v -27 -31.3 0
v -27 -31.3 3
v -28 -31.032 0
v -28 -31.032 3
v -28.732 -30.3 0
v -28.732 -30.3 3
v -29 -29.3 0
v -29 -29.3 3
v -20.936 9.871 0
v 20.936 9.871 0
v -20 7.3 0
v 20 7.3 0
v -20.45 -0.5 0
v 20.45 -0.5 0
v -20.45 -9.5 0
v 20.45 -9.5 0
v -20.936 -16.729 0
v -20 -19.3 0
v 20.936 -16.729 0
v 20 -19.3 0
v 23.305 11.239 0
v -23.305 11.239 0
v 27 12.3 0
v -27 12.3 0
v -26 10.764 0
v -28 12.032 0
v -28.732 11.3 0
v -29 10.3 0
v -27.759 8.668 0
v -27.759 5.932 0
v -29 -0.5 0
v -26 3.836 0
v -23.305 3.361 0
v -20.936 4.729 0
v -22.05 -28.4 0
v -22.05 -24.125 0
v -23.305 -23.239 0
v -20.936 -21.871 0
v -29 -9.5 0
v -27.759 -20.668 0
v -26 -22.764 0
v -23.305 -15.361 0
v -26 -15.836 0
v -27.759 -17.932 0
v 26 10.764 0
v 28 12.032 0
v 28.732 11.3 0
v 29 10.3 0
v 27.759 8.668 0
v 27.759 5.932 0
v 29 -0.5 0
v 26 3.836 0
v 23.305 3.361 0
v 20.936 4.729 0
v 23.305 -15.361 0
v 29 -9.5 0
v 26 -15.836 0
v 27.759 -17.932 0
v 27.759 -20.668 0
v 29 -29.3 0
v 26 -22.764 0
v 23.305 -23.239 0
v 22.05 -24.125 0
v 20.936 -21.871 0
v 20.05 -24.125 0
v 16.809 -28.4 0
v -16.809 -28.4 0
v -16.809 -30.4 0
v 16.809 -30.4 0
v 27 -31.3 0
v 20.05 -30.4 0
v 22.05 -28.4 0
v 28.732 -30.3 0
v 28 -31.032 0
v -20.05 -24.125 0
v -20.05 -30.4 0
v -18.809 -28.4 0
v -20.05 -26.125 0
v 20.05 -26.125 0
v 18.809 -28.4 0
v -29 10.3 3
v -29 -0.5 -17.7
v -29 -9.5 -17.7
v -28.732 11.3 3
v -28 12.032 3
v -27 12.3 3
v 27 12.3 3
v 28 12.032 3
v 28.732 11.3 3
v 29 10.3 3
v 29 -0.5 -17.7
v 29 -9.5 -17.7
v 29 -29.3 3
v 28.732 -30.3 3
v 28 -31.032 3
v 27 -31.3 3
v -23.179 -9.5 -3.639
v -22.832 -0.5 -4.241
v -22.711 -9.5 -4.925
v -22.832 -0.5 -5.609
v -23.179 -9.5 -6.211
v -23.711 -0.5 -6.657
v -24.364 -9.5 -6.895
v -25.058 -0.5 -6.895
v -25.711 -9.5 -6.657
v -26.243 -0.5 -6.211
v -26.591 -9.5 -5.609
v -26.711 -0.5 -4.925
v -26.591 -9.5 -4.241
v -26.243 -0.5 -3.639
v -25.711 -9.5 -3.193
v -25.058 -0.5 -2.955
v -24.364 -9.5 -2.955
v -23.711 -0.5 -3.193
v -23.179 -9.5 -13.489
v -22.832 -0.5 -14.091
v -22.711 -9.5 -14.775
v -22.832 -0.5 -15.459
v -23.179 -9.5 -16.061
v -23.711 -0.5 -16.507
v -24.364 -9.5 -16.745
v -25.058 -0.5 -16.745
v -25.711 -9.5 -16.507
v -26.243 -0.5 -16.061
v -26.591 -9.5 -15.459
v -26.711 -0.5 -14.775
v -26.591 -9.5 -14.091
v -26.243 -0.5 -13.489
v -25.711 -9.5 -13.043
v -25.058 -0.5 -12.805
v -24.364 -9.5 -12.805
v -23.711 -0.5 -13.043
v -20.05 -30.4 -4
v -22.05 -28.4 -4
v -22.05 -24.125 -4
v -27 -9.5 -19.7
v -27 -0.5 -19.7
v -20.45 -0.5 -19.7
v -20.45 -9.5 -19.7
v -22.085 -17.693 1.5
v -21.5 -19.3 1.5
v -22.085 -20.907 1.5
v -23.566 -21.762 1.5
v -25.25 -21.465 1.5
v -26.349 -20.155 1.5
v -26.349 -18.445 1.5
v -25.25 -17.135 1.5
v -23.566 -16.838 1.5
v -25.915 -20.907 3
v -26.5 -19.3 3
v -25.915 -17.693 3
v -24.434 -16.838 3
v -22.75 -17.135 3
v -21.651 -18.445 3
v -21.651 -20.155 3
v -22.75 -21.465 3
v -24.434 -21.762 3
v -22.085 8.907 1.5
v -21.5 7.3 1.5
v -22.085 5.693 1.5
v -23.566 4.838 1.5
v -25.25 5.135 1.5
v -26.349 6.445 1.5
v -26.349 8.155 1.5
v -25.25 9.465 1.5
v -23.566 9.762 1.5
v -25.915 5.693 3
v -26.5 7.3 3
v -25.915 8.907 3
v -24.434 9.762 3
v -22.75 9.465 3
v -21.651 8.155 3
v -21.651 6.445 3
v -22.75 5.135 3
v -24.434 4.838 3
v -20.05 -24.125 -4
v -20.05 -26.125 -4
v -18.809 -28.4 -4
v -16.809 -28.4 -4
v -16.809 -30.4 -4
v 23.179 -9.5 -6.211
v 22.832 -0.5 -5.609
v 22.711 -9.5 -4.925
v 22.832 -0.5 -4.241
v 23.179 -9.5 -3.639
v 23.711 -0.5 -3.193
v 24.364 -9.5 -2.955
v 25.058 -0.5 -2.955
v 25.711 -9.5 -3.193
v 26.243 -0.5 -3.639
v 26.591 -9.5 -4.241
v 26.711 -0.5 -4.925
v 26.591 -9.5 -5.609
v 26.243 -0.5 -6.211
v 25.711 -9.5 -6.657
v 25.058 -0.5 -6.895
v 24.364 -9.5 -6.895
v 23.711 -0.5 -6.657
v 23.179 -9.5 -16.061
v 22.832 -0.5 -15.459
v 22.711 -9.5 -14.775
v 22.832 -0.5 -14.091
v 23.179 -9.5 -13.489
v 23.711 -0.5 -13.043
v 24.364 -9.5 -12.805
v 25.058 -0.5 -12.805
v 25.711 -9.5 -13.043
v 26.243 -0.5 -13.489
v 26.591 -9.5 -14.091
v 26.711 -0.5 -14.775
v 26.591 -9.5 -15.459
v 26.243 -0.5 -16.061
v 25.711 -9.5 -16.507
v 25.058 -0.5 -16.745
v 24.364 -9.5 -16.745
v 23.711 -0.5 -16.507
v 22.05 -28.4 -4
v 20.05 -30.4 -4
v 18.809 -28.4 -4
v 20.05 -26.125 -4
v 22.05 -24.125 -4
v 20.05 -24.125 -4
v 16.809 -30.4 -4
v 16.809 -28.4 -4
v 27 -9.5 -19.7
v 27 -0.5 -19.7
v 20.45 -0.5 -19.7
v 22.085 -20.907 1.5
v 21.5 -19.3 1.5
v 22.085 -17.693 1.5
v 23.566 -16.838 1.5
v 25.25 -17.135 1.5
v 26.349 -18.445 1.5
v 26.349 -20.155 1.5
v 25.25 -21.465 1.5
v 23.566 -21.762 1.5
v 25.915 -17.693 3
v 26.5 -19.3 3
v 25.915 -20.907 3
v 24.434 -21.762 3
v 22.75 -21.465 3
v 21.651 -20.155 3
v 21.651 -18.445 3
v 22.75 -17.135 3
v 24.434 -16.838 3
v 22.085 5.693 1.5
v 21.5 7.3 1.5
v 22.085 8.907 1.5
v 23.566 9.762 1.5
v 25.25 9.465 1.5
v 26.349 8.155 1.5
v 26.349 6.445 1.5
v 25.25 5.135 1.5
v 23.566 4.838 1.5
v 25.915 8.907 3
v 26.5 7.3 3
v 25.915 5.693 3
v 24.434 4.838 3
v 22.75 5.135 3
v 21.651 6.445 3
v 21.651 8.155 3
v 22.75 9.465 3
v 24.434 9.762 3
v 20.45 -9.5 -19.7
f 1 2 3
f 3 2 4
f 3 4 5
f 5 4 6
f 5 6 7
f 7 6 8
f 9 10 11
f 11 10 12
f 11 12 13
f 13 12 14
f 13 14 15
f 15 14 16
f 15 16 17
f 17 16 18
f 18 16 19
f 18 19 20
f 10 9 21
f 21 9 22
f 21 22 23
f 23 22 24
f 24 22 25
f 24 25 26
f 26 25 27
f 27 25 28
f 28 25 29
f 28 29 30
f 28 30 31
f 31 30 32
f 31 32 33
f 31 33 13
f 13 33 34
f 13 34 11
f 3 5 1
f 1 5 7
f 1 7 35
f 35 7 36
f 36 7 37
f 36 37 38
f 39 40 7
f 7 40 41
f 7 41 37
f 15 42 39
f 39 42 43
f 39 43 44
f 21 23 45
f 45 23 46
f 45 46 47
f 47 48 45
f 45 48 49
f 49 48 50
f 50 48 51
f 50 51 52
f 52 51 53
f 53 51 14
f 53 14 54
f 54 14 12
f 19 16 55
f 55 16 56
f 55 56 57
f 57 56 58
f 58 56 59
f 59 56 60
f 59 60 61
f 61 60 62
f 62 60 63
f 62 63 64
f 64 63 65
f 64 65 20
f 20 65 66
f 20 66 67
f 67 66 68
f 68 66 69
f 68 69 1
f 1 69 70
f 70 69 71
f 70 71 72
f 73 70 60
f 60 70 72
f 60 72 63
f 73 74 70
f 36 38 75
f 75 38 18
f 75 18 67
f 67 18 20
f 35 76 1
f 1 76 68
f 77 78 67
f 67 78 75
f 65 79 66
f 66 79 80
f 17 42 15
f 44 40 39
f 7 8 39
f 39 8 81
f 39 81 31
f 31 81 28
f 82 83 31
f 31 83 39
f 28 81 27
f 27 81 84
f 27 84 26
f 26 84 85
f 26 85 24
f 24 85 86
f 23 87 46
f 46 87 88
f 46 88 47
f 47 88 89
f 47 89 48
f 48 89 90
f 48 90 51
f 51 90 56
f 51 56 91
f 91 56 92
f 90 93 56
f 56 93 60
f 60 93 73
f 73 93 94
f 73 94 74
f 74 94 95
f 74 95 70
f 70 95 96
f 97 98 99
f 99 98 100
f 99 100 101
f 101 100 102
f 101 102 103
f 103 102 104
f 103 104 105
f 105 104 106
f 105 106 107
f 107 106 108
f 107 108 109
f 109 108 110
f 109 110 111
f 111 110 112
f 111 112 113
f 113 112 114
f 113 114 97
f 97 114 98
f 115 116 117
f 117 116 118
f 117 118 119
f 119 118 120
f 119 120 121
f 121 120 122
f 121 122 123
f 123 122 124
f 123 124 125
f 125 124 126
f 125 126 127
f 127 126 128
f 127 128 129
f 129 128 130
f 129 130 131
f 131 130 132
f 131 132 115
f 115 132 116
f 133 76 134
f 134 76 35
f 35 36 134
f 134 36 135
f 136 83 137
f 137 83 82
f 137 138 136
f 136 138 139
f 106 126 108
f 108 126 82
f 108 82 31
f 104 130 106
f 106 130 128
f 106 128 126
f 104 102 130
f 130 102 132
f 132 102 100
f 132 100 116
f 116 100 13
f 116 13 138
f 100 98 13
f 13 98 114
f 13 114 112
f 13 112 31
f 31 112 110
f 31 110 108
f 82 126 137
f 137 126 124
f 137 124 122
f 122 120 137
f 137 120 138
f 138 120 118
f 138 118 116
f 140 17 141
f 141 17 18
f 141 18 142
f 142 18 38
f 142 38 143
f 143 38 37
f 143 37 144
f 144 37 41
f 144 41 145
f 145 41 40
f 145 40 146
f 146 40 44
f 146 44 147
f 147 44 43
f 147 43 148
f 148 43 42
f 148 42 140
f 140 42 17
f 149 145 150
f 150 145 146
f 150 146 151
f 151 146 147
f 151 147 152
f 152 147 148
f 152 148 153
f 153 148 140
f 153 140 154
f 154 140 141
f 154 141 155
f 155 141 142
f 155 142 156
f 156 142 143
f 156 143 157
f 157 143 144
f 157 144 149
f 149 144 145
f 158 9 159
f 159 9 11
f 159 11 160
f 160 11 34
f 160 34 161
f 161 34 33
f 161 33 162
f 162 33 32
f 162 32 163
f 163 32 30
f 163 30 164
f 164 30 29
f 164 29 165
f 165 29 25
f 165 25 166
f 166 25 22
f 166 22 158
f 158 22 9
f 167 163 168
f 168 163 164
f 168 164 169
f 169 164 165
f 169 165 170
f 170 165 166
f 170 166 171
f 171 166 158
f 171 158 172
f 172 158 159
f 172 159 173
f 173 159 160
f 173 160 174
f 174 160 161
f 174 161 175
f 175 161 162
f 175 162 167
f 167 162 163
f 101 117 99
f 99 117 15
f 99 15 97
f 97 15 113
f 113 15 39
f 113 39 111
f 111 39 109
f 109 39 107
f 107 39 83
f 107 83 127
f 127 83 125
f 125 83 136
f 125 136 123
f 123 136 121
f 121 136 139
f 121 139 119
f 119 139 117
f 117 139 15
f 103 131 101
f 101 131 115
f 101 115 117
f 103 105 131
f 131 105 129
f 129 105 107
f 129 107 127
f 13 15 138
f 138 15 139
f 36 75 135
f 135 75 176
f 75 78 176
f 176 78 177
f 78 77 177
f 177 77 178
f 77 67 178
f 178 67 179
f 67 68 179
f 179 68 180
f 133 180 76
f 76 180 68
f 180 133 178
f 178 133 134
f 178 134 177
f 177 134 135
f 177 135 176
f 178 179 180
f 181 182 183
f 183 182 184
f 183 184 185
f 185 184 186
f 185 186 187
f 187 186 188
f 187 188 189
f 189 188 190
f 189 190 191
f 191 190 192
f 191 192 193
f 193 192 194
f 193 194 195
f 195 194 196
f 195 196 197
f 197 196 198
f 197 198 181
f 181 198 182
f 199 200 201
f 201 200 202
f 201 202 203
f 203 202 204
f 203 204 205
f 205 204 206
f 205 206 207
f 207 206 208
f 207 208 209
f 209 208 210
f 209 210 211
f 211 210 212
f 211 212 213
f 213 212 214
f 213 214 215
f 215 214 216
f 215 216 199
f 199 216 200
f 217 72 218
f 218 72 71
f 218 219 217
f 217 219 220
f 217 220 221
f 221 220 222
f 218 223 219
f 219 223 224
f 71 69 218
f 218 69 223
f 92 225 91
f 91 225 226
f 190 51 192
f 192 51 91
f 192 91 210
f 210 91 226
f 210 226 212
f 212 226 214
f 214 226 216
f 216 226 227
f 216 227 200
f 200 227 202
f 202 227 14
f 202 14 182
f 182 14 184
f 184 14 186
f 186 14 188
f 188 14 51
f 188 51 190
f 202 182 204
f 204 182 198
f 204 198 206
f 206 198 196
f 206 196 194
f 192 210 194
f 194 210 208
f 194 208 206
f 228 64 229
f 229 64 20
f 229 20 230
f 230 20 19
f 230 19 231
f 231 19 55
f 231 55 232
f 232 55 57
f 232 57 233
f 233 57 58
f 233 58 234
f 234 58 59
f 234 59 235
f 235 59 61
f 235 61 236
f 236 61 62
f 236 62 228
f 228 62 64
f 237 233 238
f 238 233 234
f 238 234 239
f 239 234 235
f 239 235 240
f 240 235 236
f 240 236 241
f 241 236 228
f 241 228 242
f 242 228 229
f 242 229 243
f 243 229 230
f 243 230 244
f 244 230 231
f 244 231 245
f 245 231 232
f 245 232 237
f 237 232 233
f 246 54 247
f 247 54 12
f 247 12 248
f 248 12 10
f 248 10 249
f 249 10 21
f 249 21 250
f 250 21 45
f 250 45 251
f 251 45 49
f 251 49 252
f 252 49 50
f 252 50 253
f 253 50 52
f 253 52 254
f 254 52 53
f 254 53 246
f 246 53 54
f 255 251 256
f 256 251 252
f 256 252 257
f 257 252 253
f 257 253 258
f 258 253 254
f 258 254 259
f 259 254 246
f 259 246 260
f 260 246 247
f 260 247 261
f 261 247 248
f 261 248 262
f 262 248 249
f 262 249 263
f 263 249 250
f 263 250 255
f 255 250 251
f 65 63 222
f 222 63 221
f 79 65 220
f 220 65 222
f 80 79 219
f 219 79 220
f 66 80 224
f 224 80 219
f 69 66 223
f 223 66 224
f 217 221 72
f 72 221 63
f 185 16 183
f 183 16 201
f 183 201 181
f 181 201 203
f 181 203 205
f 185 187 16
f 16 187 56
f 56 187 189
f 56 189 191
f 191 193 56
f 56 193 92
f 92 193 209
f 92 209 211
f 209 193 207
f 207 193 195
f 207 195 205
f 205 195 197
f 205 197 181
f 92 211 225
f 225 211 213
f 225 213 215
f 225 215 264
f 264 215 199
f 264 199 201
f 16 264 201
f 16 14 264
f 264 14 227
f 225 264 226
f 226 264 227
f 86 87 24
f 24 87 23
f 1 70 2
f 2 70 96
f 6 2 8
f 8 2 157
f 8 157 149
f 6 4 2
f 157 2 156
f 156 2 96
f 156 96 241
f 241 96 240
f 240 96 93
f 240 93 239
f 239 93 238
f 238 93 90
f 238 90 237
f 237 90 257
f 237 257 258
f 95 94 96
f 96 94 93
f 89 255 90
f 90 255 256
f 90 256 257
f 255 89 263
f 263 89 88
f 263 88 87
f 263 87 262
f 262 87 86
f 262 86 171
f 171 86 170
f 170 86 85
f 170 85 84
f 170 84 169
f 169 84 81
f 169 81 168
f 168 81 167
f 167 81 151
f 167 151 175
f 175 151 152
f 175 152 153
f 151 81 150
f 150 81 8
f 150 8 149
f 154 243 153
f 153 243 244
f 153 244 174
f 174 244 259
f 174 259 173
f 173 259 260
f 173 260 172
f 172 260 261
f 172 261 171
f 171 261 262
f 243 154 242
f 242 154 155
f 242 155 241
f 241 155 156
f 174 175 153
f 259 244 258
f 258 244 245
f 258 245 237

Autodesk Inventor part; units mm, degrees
ref_plane "YZ Plane" through (0, 0, 0) normal (1, 0, 0) x (0, 1, 0)
ref_plane "XZ Plane" through (0, 0, 0) normal (0, 1, 0) x (-1, 0, 0)
ref_plane "XY Plane" through (0, 0, 0) normal (0, 0, 1) x (1, 0, 0)
sketch "Sketch1" plane through (0, 0, 0) normal (0, 0, 1) x (1, 0, 0)
  line L0 (-29, 12.3) -> (29, 12.3)
  line L1 (29, 12.3) -> (29, -31.3)
  line L2 (29, -31.3) -> (-29, -31.3)
  line L3 (-29, -31.3) -> (-29, 12.3)
  line L4 (-15.4526, -28.3) -> (15.4526, -28.3) construction
  line L5 (-27, 2.4) -> (-27, 0) construction
  line L6 (15.475, 12.3) -> (4.725, 12.3) construction
  point P0 (0, 12.3)
  point P1 (0, -31.3)
  point P2 (0, 0)
  point P3 (10.1, 12.3)
  dimension "MotorMountBaseBracketOffset" = 2
  dimension "MotorMountBaseBottomOffset" = 3
extrude "Extrusion1" add sketch "Sketch1" along normal blind 3
sketch "Sketch2" plane through (0, 0, 0) normal (0, 0, -1) x (-1, 0, 0)
  line L0 (-29, -31.3) -> (-29, 12.3) construction
  line L1 (-26, 0) -> (-19.25, 0) construction
  line L2 (-19.95, -21.3) -> (-19.95, -0.5) construction
  line L3 (-29, -9.5) -> (-20.45, -9.5)
  line L4 (-20.45, -9.5) -> (-20.45, -0.5)
  line L5 (-20.45, -0.5) -> (-29, -0.5)
  line L6 (-29, -0.5) -> (-29, -9.5)
  dimension "d66" = 9
  dimension "d67" = 0.5
  dimension "d68" = 0.5
extrude "Extrusion6" add sketch "Sketch2" along normal blind 19.7
sketch "Sketch7" plane through (0, 0, 0) normal (0, 0, -1) x (-1, 0, 0)
  line L0 (-16.8094, -28.4) -> (-16.8094, -30.4)
  line L1 (-18.8094, -28.4) -> (-16.8094, -28.4)
  line L2 (-20.05, -26.1255) -> (-18.8094, -28.4)
  line L3 (-20.05, -24.1255) -> (-20.05, -26.1255)
  line L4 (-22.05, -24.1255) -> (-20.05, -24.1255)
  line L5 (-22.05, -30.4) -> (-22.05, -24.1255)
  line L6 (-16.8094, -30.4) -> (-22.05, -30.4)
  line L7 (15.4526, -28.3) -> (-15.4526, -28.3) construction
  line L8 (-19.35, -27.2) -> (-18.75, -28.3) construction
  line L9 (-19.95, -21.3) -> (-19.95, -0.5) construction
  point P0 (0, 0)
  dimension "d79" = 2
  dimension "d82" = 0.1
  dimension "d83" = 0.1
  dimension "d84" = 0.1
extrude "Extrusion7" add sketch "Sketch7" along normal blind 4
sketch "Sketch5" plane through (0, 0, 0) normal (0, 0, -1) x (-1, 0, 0)
  circle A0 centre (-24, 7.3) radius 2.5
  circle A1 centre (-24, -19.3) radius 2.5
  point P0 (0, 0)
  point P1 (-29, -31.3)
  point P2 (-29, 12.3)
  dimension "d89" = 5
  dimension "d90" = 5
  dimension "d91" = 5
  dimension "MotorMountBottomHoleOffset" = 12
extrude "Extrusion4" cut sketch "Sketch5" against normal through all
chamfer "Chamfer1" distance 1.5 angle 45 2 edges at (26.5, 7.3, 0) (26.5, -19.3, 0)
chamfer "Chamfer4" distance 2 angle 45 2 edges at (29, -5, -19.7) (22.05, -30.4, -2)
sketch "Sketch8" plane through (20.45, -0.5, 0) normal (0, 1, 0) x (1, 0, 0)
  arc A0 (5.9164, 6.2173) -> (5.9164, 3.6327) centre (4.2611, 4.925) ccw construction
  arc A1 (5.9164, 16.0673) -> (5.9164, 13.4827) centre (4.2611, 14.775) ccw construction
  circle A2 centre (4.2611, 14.775) radius 2
  circle A3 centre (4.2611, 4.925) radius 2
  point P0 (-20.45, 0)
  dimension "MotorMountPillarHoleDia" = 4
  dimension "d99" = 4
extrude "Extrusion8" cut sketch "Sketch8" against normal through all
mirror "Mirror1" about plane through (0, 0, 0) normal (1, 0, 0) of "Extrusion7", "Extrusion4", "Chamfer1", "Extrusion6", "Chamfer4", "Extrusion8"
fillet "Fillet1" radius 2 4 edges at (29, -31.3, 1.5) (29, 12.3, 1.5) (-29, 12.3, 1.5) (-29, -31.3, 1.5)
equation "\"d66\" = MotorMountPillarDepth"
equation "\"d67\" = MotorMountPillarOffset"
equation "\"d68\" = MotorMountPillarOffset"
equation "\"d82\" = MotorMountLocatorOffset"
equation "\"d83\" = MotorMountLocatorOffset"
equation "\"d84\" = MotorMountLocatorOffset"
equation "\"d89\" = ScrewHoleDia"
equation "\"d90\" = 0.5 * ScrewPlateSize"
equation "\"d91\" = d90"
equation "\"d42\" = ScrewHoleFillet"
equation "\"d99\" = MotorMountPillarHoleDia"
equation "\"MotorMountPillarDepth\" = 9"
equation "\"MotorMountPillarOffset\" = 0.5"
equation "\"MotorMountLocatorOffset\" = 0.1"
equation "\"ScrewHoleDia\" = 5"
equation "\"ScrewHoleFillet\" = 1.5"
equation "\"ScrewPlateSize\" = 10"
properties part number "MotorCasingSmall"
